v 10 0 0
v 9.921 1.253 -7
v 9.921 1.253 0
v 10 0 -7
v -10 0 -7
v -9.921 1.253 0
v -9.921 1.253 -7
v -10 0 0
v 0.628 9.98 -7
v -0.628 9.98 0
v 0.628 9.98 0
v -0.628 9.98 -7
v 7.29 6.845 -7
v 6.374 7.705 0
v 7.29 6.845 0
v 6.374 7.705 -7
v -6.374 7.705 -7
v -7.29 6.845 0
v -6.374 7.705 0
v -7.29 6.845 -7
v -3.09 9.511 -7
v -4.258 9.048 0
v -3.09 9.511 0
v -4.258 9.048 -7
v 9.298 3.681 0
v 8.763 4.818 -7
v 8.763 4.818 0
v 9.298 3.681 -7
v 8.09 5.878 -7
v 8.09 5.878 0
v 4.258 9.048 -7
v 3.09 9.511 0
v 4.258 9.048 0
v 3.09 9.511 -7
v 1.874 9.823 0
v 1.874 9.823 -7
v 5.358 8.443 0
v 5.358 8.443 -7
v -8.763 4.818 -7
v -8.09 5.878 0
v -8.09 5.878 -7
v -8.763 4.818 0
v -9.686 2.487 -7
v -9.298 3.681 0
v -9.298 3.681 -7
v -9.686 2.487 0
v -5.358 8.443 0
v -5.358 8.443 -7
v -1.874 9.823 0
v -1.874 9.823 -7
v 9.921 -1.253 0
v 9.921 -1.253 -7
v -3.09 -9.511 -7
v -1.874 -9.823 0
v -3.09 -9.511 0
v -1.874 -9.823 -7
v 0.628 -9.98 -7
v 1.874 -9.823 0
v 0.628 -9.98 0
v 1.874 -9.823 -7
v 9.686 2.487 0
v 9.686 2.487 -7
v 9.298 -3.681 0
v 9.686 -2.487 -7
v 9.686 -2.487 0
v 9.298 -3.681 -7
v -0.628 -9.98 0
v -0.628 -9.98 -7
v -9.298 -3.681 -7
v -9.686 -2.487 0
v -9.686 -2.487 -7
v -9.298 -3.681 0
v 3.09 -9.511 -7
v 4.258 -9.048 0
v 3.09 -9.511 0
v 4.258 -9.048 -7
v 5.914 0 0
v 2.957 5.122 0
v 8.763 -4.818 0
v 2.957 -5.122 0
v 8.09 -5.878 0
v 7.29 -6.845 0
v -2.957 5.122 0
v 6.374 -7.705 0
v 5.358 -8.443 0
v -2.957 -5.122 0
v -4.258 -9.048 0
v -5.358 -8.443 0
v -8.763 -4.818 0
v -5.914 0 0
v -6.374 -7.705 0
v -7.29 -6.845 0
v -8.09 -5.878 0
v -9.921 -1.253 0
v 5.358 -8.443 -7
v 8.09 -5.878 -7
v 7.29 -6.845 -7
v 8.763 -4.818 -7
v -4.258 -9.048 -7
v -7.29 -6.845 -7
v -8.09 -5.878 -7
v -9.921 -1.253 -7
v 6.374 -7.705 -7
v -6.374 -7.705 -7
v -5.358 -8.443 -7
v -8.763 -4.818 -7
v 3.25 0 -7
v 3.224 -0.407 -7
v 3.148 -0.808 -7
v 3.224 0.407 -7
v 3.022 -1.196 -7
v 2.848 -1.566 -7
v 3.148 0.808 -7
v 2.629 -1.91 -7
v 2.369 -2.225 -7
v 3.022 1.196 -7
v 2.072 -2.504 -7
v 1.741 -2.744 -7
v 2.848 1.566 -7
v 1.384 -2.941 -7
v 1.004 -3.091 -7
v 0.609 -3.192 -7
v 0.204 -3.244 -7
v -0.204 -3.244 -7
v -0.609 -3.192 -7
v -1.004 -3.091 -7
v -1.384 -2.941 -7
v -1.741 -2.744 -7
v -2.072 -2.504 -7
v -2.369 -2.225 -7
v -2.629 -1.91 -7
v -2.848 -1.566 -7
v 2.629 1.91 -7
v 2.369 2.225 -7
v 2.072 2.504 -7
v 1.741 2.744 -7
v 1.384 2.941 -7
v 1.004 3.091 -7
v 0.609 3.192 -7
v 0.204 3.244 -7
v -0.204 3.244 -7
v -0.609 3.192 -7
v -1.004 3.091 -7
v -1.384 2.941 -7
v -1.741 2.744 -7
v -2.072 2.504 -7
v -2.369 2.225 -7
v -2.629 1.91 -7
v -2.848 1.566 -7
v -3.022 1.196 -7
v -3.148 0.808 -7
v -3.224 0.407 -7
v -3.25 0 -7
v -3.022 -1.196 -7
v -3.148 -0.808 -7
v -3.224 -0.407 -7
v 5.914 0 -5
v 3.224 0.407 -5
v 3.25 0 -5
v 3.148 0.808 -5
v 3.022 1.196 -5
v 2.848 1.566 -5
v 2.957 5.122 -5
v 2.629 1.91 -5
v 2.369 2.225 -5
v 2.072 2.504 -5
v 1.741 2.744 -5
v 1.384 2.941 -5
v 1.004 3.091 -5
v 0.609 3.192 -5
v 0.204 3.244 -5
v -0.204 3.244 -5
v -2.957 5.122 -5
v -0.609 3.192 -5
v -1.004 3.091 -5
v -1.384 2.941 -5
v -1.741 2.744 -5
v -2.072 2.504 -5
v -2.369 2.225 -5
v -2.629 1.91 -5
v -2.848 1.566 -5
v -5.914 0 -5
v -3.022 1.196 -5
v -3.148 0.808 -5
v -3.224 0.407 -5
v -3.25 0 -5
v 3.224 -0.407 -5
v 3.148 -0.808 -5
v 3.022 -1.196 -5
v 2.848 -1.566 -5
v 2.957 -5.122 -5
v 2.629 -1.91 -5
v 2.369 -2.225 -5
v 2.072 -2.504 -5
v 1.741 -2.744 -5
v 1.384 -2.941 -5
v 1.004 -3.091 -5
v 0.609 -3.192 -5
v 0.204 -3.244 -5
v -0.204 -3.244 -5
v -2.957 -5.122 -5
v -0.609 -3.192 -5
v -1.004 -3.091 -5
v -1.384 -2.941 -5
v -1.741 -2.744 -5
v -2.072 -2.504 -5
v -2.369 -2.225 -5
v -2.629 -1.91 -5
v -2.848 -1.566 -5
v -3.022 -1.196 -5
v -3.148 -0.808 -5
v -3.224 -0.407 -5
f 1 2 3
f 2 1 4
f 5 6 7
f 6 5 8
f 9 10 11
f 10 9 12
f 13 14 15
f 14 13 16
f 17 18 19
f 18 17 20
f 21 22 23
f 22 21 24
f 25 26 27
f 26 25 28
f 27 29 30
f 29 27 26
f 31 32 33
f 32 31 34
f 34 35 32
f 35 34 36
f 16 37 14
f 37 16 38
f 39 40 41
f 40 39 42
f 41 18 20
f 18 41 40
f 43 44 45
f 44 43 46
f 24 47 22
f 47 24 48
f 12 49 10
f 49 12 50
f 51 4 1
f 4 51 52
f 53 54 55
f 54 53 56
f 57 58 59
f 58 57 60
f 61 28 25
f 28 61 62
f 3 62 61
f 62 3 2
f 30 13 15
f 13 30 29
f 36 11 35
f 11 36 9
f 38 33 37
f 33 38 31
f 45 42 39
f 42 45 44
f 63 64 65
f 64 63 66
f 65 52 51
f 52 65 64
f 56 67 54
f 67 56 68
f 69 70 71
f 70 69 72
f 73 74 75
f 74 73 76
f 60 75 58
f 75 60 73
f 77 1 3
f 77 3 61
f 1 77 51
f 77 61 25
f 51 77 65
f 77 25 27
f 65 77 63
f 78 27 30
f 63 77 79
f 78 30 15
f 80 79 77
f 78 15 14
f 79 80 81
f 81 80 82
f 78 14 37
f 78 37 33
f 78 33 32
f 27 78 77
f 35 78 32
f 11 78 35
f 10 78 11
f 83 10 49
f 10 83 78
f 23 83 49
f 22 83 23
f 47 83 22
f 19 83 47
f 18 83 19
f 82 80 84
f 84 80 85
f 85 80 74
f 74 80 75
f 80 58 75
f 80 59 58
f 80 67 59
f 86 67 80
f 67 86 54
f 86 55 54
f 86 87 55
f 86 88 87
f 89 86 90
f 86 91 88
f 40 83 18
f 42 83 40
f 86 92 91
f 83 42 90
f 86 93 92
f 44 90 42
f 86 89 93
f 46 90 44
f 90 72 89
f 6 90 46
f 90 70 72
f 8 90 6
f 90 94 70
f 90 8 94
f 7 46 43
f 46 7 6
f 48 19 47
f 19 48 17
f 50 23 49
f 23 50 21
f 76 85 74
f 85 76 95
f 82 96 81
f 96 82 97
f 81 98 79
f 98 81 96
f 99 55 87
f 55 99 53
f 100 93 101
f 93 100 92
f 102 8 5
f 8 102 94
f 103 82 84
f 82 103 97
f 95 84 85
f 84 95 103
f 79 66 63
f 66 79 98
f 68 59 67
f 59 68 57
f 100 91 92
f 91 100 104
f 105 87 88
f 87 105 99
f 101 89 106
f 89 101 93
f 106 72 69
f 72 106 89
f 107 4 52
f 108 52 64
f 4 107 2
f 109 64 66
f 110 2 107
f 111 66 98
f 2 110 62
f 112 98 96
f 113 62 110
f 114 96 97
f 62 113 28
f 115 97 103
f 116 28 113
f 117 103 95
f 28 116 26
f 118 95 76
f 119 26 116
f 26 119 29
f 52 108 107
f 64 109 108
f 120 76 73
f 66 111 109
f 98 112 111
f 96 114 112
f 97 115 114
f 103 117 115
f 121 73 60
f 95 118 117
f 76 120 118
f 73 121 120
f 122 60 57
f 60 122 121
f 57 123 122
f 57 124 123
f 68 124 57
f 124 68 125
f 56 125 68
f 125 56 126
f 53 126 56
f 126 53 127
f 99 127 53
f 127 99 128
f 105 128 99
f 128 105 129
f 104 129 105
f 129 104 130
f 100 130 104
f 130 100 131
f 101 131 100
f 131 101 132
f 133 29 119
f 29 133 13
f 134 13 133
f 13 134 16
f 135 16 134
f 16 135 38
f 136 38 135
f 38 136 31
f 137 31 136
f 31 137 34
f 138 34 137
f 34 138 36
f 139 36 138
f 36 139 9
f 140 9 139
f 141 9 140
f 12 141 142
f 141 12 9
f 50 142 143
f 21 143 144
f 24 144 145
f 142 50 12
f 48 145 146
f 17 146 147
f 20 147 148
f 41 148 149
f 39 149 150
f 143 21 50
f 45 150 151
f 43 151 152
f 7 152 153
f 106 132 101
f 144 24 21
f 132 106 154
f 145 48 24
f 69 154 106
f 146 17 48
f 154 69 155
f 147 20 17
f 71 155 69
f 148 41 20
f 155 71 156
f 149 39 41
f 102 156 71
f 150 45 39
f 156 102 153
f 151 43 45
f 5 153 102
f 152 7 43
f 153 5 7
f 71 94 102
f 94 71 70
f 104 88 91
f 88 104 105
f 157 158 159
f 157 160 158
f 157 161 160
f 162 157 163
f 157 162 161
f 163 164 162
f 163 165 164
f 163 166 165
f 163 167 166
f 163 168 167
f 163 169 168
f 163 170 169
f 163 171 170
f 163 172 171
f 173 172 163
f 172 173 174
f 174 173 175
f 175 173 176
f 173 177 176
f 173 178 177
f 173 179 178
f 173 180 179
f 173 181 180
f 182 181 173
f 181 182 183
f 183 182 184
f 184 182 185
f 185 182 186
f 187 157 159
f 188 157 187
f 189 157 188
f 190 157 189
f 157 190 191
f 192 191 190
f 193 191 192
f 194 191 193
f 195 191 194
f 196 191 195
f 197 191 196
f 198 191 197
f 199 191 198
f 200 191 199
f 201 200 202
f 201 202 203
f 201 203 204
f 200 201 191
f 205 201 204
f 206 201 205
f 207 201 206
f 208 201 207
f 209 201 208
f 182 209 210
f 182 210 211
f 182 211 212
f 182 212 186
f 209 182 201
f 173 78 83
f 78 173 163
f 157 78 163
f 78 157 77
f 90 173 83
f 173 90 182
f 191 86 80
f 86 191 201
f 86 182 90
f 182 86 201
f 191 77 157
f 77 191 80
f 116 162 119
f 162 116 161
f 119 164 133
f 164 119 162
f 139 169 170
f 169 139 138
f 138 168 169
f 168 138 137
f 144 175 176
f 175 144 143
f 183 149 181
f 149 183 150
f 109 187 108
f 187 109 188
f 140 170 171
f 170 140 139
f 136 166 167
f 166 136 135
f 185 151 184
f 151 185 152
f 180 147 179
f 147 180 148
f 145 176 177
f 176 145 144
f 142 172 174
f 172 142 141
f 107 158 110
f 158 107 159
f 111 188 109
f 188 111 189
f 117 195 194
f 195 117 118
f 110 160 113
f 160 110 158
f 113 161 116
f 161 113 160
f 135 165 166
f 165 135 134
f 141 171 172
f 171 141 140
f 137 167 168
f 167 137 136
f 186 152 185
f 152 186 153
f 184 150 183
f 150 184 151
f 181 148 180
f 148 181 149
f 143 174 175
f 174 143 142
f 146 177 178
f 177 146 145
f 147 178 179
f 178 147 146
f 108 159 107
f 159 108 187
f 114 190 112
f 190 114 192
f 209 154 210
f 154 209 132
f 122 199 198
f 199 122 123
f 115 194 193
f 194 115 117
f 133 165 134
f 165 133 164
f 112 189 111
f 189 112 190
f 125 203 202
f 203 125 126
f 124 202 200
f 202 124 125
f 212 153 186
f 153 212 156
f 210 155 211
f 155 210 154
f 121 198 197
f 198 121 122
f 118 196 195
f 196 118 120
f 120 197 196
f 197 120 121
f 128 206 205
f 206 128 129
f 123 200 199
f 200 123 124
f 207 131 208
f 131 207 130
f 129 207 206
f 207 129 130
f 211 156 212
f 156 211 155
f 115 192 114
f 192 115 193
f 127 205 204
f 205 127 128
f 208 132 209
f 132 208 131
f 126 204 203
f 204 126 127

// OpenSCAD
$fn = 50;


difference() {
	union() {
		translate(v = [0, 0, -7.0000000000]) {
			cylinder(h = 7.0000000000, r = 10.0000000000);
		}
		#translate(v = [0, 0, -8.5000000000]) {
			cylinder(h = 8.5000000000, r = 2.8750000000);
		}
	}
	union() {
		translate(v = [0, 0, 0]) {
			rotate(a = [0, 0, 0]) {
				difference() {
					union() {
						translate(v = [0, 0, -5]) {
							linear_extrude(height = 5) {
								polygon(points = [[5.9142500000, 0.0000000000], [2.9571250000, 5.1218907443], [-2.9571250000, 5.1218907443], [-5.9142500000, 0.0000000000], [-2.9571250000, -5.1218907443], [2.9571250000, -5.1218907443]]);
							}
						}
					}
					union();
				}
			}
		}
		#translate(v = [0, 0, -100.0000000000]) {
			cylinder(h = 200, r = 3.2500000000);
		}
	}
}
